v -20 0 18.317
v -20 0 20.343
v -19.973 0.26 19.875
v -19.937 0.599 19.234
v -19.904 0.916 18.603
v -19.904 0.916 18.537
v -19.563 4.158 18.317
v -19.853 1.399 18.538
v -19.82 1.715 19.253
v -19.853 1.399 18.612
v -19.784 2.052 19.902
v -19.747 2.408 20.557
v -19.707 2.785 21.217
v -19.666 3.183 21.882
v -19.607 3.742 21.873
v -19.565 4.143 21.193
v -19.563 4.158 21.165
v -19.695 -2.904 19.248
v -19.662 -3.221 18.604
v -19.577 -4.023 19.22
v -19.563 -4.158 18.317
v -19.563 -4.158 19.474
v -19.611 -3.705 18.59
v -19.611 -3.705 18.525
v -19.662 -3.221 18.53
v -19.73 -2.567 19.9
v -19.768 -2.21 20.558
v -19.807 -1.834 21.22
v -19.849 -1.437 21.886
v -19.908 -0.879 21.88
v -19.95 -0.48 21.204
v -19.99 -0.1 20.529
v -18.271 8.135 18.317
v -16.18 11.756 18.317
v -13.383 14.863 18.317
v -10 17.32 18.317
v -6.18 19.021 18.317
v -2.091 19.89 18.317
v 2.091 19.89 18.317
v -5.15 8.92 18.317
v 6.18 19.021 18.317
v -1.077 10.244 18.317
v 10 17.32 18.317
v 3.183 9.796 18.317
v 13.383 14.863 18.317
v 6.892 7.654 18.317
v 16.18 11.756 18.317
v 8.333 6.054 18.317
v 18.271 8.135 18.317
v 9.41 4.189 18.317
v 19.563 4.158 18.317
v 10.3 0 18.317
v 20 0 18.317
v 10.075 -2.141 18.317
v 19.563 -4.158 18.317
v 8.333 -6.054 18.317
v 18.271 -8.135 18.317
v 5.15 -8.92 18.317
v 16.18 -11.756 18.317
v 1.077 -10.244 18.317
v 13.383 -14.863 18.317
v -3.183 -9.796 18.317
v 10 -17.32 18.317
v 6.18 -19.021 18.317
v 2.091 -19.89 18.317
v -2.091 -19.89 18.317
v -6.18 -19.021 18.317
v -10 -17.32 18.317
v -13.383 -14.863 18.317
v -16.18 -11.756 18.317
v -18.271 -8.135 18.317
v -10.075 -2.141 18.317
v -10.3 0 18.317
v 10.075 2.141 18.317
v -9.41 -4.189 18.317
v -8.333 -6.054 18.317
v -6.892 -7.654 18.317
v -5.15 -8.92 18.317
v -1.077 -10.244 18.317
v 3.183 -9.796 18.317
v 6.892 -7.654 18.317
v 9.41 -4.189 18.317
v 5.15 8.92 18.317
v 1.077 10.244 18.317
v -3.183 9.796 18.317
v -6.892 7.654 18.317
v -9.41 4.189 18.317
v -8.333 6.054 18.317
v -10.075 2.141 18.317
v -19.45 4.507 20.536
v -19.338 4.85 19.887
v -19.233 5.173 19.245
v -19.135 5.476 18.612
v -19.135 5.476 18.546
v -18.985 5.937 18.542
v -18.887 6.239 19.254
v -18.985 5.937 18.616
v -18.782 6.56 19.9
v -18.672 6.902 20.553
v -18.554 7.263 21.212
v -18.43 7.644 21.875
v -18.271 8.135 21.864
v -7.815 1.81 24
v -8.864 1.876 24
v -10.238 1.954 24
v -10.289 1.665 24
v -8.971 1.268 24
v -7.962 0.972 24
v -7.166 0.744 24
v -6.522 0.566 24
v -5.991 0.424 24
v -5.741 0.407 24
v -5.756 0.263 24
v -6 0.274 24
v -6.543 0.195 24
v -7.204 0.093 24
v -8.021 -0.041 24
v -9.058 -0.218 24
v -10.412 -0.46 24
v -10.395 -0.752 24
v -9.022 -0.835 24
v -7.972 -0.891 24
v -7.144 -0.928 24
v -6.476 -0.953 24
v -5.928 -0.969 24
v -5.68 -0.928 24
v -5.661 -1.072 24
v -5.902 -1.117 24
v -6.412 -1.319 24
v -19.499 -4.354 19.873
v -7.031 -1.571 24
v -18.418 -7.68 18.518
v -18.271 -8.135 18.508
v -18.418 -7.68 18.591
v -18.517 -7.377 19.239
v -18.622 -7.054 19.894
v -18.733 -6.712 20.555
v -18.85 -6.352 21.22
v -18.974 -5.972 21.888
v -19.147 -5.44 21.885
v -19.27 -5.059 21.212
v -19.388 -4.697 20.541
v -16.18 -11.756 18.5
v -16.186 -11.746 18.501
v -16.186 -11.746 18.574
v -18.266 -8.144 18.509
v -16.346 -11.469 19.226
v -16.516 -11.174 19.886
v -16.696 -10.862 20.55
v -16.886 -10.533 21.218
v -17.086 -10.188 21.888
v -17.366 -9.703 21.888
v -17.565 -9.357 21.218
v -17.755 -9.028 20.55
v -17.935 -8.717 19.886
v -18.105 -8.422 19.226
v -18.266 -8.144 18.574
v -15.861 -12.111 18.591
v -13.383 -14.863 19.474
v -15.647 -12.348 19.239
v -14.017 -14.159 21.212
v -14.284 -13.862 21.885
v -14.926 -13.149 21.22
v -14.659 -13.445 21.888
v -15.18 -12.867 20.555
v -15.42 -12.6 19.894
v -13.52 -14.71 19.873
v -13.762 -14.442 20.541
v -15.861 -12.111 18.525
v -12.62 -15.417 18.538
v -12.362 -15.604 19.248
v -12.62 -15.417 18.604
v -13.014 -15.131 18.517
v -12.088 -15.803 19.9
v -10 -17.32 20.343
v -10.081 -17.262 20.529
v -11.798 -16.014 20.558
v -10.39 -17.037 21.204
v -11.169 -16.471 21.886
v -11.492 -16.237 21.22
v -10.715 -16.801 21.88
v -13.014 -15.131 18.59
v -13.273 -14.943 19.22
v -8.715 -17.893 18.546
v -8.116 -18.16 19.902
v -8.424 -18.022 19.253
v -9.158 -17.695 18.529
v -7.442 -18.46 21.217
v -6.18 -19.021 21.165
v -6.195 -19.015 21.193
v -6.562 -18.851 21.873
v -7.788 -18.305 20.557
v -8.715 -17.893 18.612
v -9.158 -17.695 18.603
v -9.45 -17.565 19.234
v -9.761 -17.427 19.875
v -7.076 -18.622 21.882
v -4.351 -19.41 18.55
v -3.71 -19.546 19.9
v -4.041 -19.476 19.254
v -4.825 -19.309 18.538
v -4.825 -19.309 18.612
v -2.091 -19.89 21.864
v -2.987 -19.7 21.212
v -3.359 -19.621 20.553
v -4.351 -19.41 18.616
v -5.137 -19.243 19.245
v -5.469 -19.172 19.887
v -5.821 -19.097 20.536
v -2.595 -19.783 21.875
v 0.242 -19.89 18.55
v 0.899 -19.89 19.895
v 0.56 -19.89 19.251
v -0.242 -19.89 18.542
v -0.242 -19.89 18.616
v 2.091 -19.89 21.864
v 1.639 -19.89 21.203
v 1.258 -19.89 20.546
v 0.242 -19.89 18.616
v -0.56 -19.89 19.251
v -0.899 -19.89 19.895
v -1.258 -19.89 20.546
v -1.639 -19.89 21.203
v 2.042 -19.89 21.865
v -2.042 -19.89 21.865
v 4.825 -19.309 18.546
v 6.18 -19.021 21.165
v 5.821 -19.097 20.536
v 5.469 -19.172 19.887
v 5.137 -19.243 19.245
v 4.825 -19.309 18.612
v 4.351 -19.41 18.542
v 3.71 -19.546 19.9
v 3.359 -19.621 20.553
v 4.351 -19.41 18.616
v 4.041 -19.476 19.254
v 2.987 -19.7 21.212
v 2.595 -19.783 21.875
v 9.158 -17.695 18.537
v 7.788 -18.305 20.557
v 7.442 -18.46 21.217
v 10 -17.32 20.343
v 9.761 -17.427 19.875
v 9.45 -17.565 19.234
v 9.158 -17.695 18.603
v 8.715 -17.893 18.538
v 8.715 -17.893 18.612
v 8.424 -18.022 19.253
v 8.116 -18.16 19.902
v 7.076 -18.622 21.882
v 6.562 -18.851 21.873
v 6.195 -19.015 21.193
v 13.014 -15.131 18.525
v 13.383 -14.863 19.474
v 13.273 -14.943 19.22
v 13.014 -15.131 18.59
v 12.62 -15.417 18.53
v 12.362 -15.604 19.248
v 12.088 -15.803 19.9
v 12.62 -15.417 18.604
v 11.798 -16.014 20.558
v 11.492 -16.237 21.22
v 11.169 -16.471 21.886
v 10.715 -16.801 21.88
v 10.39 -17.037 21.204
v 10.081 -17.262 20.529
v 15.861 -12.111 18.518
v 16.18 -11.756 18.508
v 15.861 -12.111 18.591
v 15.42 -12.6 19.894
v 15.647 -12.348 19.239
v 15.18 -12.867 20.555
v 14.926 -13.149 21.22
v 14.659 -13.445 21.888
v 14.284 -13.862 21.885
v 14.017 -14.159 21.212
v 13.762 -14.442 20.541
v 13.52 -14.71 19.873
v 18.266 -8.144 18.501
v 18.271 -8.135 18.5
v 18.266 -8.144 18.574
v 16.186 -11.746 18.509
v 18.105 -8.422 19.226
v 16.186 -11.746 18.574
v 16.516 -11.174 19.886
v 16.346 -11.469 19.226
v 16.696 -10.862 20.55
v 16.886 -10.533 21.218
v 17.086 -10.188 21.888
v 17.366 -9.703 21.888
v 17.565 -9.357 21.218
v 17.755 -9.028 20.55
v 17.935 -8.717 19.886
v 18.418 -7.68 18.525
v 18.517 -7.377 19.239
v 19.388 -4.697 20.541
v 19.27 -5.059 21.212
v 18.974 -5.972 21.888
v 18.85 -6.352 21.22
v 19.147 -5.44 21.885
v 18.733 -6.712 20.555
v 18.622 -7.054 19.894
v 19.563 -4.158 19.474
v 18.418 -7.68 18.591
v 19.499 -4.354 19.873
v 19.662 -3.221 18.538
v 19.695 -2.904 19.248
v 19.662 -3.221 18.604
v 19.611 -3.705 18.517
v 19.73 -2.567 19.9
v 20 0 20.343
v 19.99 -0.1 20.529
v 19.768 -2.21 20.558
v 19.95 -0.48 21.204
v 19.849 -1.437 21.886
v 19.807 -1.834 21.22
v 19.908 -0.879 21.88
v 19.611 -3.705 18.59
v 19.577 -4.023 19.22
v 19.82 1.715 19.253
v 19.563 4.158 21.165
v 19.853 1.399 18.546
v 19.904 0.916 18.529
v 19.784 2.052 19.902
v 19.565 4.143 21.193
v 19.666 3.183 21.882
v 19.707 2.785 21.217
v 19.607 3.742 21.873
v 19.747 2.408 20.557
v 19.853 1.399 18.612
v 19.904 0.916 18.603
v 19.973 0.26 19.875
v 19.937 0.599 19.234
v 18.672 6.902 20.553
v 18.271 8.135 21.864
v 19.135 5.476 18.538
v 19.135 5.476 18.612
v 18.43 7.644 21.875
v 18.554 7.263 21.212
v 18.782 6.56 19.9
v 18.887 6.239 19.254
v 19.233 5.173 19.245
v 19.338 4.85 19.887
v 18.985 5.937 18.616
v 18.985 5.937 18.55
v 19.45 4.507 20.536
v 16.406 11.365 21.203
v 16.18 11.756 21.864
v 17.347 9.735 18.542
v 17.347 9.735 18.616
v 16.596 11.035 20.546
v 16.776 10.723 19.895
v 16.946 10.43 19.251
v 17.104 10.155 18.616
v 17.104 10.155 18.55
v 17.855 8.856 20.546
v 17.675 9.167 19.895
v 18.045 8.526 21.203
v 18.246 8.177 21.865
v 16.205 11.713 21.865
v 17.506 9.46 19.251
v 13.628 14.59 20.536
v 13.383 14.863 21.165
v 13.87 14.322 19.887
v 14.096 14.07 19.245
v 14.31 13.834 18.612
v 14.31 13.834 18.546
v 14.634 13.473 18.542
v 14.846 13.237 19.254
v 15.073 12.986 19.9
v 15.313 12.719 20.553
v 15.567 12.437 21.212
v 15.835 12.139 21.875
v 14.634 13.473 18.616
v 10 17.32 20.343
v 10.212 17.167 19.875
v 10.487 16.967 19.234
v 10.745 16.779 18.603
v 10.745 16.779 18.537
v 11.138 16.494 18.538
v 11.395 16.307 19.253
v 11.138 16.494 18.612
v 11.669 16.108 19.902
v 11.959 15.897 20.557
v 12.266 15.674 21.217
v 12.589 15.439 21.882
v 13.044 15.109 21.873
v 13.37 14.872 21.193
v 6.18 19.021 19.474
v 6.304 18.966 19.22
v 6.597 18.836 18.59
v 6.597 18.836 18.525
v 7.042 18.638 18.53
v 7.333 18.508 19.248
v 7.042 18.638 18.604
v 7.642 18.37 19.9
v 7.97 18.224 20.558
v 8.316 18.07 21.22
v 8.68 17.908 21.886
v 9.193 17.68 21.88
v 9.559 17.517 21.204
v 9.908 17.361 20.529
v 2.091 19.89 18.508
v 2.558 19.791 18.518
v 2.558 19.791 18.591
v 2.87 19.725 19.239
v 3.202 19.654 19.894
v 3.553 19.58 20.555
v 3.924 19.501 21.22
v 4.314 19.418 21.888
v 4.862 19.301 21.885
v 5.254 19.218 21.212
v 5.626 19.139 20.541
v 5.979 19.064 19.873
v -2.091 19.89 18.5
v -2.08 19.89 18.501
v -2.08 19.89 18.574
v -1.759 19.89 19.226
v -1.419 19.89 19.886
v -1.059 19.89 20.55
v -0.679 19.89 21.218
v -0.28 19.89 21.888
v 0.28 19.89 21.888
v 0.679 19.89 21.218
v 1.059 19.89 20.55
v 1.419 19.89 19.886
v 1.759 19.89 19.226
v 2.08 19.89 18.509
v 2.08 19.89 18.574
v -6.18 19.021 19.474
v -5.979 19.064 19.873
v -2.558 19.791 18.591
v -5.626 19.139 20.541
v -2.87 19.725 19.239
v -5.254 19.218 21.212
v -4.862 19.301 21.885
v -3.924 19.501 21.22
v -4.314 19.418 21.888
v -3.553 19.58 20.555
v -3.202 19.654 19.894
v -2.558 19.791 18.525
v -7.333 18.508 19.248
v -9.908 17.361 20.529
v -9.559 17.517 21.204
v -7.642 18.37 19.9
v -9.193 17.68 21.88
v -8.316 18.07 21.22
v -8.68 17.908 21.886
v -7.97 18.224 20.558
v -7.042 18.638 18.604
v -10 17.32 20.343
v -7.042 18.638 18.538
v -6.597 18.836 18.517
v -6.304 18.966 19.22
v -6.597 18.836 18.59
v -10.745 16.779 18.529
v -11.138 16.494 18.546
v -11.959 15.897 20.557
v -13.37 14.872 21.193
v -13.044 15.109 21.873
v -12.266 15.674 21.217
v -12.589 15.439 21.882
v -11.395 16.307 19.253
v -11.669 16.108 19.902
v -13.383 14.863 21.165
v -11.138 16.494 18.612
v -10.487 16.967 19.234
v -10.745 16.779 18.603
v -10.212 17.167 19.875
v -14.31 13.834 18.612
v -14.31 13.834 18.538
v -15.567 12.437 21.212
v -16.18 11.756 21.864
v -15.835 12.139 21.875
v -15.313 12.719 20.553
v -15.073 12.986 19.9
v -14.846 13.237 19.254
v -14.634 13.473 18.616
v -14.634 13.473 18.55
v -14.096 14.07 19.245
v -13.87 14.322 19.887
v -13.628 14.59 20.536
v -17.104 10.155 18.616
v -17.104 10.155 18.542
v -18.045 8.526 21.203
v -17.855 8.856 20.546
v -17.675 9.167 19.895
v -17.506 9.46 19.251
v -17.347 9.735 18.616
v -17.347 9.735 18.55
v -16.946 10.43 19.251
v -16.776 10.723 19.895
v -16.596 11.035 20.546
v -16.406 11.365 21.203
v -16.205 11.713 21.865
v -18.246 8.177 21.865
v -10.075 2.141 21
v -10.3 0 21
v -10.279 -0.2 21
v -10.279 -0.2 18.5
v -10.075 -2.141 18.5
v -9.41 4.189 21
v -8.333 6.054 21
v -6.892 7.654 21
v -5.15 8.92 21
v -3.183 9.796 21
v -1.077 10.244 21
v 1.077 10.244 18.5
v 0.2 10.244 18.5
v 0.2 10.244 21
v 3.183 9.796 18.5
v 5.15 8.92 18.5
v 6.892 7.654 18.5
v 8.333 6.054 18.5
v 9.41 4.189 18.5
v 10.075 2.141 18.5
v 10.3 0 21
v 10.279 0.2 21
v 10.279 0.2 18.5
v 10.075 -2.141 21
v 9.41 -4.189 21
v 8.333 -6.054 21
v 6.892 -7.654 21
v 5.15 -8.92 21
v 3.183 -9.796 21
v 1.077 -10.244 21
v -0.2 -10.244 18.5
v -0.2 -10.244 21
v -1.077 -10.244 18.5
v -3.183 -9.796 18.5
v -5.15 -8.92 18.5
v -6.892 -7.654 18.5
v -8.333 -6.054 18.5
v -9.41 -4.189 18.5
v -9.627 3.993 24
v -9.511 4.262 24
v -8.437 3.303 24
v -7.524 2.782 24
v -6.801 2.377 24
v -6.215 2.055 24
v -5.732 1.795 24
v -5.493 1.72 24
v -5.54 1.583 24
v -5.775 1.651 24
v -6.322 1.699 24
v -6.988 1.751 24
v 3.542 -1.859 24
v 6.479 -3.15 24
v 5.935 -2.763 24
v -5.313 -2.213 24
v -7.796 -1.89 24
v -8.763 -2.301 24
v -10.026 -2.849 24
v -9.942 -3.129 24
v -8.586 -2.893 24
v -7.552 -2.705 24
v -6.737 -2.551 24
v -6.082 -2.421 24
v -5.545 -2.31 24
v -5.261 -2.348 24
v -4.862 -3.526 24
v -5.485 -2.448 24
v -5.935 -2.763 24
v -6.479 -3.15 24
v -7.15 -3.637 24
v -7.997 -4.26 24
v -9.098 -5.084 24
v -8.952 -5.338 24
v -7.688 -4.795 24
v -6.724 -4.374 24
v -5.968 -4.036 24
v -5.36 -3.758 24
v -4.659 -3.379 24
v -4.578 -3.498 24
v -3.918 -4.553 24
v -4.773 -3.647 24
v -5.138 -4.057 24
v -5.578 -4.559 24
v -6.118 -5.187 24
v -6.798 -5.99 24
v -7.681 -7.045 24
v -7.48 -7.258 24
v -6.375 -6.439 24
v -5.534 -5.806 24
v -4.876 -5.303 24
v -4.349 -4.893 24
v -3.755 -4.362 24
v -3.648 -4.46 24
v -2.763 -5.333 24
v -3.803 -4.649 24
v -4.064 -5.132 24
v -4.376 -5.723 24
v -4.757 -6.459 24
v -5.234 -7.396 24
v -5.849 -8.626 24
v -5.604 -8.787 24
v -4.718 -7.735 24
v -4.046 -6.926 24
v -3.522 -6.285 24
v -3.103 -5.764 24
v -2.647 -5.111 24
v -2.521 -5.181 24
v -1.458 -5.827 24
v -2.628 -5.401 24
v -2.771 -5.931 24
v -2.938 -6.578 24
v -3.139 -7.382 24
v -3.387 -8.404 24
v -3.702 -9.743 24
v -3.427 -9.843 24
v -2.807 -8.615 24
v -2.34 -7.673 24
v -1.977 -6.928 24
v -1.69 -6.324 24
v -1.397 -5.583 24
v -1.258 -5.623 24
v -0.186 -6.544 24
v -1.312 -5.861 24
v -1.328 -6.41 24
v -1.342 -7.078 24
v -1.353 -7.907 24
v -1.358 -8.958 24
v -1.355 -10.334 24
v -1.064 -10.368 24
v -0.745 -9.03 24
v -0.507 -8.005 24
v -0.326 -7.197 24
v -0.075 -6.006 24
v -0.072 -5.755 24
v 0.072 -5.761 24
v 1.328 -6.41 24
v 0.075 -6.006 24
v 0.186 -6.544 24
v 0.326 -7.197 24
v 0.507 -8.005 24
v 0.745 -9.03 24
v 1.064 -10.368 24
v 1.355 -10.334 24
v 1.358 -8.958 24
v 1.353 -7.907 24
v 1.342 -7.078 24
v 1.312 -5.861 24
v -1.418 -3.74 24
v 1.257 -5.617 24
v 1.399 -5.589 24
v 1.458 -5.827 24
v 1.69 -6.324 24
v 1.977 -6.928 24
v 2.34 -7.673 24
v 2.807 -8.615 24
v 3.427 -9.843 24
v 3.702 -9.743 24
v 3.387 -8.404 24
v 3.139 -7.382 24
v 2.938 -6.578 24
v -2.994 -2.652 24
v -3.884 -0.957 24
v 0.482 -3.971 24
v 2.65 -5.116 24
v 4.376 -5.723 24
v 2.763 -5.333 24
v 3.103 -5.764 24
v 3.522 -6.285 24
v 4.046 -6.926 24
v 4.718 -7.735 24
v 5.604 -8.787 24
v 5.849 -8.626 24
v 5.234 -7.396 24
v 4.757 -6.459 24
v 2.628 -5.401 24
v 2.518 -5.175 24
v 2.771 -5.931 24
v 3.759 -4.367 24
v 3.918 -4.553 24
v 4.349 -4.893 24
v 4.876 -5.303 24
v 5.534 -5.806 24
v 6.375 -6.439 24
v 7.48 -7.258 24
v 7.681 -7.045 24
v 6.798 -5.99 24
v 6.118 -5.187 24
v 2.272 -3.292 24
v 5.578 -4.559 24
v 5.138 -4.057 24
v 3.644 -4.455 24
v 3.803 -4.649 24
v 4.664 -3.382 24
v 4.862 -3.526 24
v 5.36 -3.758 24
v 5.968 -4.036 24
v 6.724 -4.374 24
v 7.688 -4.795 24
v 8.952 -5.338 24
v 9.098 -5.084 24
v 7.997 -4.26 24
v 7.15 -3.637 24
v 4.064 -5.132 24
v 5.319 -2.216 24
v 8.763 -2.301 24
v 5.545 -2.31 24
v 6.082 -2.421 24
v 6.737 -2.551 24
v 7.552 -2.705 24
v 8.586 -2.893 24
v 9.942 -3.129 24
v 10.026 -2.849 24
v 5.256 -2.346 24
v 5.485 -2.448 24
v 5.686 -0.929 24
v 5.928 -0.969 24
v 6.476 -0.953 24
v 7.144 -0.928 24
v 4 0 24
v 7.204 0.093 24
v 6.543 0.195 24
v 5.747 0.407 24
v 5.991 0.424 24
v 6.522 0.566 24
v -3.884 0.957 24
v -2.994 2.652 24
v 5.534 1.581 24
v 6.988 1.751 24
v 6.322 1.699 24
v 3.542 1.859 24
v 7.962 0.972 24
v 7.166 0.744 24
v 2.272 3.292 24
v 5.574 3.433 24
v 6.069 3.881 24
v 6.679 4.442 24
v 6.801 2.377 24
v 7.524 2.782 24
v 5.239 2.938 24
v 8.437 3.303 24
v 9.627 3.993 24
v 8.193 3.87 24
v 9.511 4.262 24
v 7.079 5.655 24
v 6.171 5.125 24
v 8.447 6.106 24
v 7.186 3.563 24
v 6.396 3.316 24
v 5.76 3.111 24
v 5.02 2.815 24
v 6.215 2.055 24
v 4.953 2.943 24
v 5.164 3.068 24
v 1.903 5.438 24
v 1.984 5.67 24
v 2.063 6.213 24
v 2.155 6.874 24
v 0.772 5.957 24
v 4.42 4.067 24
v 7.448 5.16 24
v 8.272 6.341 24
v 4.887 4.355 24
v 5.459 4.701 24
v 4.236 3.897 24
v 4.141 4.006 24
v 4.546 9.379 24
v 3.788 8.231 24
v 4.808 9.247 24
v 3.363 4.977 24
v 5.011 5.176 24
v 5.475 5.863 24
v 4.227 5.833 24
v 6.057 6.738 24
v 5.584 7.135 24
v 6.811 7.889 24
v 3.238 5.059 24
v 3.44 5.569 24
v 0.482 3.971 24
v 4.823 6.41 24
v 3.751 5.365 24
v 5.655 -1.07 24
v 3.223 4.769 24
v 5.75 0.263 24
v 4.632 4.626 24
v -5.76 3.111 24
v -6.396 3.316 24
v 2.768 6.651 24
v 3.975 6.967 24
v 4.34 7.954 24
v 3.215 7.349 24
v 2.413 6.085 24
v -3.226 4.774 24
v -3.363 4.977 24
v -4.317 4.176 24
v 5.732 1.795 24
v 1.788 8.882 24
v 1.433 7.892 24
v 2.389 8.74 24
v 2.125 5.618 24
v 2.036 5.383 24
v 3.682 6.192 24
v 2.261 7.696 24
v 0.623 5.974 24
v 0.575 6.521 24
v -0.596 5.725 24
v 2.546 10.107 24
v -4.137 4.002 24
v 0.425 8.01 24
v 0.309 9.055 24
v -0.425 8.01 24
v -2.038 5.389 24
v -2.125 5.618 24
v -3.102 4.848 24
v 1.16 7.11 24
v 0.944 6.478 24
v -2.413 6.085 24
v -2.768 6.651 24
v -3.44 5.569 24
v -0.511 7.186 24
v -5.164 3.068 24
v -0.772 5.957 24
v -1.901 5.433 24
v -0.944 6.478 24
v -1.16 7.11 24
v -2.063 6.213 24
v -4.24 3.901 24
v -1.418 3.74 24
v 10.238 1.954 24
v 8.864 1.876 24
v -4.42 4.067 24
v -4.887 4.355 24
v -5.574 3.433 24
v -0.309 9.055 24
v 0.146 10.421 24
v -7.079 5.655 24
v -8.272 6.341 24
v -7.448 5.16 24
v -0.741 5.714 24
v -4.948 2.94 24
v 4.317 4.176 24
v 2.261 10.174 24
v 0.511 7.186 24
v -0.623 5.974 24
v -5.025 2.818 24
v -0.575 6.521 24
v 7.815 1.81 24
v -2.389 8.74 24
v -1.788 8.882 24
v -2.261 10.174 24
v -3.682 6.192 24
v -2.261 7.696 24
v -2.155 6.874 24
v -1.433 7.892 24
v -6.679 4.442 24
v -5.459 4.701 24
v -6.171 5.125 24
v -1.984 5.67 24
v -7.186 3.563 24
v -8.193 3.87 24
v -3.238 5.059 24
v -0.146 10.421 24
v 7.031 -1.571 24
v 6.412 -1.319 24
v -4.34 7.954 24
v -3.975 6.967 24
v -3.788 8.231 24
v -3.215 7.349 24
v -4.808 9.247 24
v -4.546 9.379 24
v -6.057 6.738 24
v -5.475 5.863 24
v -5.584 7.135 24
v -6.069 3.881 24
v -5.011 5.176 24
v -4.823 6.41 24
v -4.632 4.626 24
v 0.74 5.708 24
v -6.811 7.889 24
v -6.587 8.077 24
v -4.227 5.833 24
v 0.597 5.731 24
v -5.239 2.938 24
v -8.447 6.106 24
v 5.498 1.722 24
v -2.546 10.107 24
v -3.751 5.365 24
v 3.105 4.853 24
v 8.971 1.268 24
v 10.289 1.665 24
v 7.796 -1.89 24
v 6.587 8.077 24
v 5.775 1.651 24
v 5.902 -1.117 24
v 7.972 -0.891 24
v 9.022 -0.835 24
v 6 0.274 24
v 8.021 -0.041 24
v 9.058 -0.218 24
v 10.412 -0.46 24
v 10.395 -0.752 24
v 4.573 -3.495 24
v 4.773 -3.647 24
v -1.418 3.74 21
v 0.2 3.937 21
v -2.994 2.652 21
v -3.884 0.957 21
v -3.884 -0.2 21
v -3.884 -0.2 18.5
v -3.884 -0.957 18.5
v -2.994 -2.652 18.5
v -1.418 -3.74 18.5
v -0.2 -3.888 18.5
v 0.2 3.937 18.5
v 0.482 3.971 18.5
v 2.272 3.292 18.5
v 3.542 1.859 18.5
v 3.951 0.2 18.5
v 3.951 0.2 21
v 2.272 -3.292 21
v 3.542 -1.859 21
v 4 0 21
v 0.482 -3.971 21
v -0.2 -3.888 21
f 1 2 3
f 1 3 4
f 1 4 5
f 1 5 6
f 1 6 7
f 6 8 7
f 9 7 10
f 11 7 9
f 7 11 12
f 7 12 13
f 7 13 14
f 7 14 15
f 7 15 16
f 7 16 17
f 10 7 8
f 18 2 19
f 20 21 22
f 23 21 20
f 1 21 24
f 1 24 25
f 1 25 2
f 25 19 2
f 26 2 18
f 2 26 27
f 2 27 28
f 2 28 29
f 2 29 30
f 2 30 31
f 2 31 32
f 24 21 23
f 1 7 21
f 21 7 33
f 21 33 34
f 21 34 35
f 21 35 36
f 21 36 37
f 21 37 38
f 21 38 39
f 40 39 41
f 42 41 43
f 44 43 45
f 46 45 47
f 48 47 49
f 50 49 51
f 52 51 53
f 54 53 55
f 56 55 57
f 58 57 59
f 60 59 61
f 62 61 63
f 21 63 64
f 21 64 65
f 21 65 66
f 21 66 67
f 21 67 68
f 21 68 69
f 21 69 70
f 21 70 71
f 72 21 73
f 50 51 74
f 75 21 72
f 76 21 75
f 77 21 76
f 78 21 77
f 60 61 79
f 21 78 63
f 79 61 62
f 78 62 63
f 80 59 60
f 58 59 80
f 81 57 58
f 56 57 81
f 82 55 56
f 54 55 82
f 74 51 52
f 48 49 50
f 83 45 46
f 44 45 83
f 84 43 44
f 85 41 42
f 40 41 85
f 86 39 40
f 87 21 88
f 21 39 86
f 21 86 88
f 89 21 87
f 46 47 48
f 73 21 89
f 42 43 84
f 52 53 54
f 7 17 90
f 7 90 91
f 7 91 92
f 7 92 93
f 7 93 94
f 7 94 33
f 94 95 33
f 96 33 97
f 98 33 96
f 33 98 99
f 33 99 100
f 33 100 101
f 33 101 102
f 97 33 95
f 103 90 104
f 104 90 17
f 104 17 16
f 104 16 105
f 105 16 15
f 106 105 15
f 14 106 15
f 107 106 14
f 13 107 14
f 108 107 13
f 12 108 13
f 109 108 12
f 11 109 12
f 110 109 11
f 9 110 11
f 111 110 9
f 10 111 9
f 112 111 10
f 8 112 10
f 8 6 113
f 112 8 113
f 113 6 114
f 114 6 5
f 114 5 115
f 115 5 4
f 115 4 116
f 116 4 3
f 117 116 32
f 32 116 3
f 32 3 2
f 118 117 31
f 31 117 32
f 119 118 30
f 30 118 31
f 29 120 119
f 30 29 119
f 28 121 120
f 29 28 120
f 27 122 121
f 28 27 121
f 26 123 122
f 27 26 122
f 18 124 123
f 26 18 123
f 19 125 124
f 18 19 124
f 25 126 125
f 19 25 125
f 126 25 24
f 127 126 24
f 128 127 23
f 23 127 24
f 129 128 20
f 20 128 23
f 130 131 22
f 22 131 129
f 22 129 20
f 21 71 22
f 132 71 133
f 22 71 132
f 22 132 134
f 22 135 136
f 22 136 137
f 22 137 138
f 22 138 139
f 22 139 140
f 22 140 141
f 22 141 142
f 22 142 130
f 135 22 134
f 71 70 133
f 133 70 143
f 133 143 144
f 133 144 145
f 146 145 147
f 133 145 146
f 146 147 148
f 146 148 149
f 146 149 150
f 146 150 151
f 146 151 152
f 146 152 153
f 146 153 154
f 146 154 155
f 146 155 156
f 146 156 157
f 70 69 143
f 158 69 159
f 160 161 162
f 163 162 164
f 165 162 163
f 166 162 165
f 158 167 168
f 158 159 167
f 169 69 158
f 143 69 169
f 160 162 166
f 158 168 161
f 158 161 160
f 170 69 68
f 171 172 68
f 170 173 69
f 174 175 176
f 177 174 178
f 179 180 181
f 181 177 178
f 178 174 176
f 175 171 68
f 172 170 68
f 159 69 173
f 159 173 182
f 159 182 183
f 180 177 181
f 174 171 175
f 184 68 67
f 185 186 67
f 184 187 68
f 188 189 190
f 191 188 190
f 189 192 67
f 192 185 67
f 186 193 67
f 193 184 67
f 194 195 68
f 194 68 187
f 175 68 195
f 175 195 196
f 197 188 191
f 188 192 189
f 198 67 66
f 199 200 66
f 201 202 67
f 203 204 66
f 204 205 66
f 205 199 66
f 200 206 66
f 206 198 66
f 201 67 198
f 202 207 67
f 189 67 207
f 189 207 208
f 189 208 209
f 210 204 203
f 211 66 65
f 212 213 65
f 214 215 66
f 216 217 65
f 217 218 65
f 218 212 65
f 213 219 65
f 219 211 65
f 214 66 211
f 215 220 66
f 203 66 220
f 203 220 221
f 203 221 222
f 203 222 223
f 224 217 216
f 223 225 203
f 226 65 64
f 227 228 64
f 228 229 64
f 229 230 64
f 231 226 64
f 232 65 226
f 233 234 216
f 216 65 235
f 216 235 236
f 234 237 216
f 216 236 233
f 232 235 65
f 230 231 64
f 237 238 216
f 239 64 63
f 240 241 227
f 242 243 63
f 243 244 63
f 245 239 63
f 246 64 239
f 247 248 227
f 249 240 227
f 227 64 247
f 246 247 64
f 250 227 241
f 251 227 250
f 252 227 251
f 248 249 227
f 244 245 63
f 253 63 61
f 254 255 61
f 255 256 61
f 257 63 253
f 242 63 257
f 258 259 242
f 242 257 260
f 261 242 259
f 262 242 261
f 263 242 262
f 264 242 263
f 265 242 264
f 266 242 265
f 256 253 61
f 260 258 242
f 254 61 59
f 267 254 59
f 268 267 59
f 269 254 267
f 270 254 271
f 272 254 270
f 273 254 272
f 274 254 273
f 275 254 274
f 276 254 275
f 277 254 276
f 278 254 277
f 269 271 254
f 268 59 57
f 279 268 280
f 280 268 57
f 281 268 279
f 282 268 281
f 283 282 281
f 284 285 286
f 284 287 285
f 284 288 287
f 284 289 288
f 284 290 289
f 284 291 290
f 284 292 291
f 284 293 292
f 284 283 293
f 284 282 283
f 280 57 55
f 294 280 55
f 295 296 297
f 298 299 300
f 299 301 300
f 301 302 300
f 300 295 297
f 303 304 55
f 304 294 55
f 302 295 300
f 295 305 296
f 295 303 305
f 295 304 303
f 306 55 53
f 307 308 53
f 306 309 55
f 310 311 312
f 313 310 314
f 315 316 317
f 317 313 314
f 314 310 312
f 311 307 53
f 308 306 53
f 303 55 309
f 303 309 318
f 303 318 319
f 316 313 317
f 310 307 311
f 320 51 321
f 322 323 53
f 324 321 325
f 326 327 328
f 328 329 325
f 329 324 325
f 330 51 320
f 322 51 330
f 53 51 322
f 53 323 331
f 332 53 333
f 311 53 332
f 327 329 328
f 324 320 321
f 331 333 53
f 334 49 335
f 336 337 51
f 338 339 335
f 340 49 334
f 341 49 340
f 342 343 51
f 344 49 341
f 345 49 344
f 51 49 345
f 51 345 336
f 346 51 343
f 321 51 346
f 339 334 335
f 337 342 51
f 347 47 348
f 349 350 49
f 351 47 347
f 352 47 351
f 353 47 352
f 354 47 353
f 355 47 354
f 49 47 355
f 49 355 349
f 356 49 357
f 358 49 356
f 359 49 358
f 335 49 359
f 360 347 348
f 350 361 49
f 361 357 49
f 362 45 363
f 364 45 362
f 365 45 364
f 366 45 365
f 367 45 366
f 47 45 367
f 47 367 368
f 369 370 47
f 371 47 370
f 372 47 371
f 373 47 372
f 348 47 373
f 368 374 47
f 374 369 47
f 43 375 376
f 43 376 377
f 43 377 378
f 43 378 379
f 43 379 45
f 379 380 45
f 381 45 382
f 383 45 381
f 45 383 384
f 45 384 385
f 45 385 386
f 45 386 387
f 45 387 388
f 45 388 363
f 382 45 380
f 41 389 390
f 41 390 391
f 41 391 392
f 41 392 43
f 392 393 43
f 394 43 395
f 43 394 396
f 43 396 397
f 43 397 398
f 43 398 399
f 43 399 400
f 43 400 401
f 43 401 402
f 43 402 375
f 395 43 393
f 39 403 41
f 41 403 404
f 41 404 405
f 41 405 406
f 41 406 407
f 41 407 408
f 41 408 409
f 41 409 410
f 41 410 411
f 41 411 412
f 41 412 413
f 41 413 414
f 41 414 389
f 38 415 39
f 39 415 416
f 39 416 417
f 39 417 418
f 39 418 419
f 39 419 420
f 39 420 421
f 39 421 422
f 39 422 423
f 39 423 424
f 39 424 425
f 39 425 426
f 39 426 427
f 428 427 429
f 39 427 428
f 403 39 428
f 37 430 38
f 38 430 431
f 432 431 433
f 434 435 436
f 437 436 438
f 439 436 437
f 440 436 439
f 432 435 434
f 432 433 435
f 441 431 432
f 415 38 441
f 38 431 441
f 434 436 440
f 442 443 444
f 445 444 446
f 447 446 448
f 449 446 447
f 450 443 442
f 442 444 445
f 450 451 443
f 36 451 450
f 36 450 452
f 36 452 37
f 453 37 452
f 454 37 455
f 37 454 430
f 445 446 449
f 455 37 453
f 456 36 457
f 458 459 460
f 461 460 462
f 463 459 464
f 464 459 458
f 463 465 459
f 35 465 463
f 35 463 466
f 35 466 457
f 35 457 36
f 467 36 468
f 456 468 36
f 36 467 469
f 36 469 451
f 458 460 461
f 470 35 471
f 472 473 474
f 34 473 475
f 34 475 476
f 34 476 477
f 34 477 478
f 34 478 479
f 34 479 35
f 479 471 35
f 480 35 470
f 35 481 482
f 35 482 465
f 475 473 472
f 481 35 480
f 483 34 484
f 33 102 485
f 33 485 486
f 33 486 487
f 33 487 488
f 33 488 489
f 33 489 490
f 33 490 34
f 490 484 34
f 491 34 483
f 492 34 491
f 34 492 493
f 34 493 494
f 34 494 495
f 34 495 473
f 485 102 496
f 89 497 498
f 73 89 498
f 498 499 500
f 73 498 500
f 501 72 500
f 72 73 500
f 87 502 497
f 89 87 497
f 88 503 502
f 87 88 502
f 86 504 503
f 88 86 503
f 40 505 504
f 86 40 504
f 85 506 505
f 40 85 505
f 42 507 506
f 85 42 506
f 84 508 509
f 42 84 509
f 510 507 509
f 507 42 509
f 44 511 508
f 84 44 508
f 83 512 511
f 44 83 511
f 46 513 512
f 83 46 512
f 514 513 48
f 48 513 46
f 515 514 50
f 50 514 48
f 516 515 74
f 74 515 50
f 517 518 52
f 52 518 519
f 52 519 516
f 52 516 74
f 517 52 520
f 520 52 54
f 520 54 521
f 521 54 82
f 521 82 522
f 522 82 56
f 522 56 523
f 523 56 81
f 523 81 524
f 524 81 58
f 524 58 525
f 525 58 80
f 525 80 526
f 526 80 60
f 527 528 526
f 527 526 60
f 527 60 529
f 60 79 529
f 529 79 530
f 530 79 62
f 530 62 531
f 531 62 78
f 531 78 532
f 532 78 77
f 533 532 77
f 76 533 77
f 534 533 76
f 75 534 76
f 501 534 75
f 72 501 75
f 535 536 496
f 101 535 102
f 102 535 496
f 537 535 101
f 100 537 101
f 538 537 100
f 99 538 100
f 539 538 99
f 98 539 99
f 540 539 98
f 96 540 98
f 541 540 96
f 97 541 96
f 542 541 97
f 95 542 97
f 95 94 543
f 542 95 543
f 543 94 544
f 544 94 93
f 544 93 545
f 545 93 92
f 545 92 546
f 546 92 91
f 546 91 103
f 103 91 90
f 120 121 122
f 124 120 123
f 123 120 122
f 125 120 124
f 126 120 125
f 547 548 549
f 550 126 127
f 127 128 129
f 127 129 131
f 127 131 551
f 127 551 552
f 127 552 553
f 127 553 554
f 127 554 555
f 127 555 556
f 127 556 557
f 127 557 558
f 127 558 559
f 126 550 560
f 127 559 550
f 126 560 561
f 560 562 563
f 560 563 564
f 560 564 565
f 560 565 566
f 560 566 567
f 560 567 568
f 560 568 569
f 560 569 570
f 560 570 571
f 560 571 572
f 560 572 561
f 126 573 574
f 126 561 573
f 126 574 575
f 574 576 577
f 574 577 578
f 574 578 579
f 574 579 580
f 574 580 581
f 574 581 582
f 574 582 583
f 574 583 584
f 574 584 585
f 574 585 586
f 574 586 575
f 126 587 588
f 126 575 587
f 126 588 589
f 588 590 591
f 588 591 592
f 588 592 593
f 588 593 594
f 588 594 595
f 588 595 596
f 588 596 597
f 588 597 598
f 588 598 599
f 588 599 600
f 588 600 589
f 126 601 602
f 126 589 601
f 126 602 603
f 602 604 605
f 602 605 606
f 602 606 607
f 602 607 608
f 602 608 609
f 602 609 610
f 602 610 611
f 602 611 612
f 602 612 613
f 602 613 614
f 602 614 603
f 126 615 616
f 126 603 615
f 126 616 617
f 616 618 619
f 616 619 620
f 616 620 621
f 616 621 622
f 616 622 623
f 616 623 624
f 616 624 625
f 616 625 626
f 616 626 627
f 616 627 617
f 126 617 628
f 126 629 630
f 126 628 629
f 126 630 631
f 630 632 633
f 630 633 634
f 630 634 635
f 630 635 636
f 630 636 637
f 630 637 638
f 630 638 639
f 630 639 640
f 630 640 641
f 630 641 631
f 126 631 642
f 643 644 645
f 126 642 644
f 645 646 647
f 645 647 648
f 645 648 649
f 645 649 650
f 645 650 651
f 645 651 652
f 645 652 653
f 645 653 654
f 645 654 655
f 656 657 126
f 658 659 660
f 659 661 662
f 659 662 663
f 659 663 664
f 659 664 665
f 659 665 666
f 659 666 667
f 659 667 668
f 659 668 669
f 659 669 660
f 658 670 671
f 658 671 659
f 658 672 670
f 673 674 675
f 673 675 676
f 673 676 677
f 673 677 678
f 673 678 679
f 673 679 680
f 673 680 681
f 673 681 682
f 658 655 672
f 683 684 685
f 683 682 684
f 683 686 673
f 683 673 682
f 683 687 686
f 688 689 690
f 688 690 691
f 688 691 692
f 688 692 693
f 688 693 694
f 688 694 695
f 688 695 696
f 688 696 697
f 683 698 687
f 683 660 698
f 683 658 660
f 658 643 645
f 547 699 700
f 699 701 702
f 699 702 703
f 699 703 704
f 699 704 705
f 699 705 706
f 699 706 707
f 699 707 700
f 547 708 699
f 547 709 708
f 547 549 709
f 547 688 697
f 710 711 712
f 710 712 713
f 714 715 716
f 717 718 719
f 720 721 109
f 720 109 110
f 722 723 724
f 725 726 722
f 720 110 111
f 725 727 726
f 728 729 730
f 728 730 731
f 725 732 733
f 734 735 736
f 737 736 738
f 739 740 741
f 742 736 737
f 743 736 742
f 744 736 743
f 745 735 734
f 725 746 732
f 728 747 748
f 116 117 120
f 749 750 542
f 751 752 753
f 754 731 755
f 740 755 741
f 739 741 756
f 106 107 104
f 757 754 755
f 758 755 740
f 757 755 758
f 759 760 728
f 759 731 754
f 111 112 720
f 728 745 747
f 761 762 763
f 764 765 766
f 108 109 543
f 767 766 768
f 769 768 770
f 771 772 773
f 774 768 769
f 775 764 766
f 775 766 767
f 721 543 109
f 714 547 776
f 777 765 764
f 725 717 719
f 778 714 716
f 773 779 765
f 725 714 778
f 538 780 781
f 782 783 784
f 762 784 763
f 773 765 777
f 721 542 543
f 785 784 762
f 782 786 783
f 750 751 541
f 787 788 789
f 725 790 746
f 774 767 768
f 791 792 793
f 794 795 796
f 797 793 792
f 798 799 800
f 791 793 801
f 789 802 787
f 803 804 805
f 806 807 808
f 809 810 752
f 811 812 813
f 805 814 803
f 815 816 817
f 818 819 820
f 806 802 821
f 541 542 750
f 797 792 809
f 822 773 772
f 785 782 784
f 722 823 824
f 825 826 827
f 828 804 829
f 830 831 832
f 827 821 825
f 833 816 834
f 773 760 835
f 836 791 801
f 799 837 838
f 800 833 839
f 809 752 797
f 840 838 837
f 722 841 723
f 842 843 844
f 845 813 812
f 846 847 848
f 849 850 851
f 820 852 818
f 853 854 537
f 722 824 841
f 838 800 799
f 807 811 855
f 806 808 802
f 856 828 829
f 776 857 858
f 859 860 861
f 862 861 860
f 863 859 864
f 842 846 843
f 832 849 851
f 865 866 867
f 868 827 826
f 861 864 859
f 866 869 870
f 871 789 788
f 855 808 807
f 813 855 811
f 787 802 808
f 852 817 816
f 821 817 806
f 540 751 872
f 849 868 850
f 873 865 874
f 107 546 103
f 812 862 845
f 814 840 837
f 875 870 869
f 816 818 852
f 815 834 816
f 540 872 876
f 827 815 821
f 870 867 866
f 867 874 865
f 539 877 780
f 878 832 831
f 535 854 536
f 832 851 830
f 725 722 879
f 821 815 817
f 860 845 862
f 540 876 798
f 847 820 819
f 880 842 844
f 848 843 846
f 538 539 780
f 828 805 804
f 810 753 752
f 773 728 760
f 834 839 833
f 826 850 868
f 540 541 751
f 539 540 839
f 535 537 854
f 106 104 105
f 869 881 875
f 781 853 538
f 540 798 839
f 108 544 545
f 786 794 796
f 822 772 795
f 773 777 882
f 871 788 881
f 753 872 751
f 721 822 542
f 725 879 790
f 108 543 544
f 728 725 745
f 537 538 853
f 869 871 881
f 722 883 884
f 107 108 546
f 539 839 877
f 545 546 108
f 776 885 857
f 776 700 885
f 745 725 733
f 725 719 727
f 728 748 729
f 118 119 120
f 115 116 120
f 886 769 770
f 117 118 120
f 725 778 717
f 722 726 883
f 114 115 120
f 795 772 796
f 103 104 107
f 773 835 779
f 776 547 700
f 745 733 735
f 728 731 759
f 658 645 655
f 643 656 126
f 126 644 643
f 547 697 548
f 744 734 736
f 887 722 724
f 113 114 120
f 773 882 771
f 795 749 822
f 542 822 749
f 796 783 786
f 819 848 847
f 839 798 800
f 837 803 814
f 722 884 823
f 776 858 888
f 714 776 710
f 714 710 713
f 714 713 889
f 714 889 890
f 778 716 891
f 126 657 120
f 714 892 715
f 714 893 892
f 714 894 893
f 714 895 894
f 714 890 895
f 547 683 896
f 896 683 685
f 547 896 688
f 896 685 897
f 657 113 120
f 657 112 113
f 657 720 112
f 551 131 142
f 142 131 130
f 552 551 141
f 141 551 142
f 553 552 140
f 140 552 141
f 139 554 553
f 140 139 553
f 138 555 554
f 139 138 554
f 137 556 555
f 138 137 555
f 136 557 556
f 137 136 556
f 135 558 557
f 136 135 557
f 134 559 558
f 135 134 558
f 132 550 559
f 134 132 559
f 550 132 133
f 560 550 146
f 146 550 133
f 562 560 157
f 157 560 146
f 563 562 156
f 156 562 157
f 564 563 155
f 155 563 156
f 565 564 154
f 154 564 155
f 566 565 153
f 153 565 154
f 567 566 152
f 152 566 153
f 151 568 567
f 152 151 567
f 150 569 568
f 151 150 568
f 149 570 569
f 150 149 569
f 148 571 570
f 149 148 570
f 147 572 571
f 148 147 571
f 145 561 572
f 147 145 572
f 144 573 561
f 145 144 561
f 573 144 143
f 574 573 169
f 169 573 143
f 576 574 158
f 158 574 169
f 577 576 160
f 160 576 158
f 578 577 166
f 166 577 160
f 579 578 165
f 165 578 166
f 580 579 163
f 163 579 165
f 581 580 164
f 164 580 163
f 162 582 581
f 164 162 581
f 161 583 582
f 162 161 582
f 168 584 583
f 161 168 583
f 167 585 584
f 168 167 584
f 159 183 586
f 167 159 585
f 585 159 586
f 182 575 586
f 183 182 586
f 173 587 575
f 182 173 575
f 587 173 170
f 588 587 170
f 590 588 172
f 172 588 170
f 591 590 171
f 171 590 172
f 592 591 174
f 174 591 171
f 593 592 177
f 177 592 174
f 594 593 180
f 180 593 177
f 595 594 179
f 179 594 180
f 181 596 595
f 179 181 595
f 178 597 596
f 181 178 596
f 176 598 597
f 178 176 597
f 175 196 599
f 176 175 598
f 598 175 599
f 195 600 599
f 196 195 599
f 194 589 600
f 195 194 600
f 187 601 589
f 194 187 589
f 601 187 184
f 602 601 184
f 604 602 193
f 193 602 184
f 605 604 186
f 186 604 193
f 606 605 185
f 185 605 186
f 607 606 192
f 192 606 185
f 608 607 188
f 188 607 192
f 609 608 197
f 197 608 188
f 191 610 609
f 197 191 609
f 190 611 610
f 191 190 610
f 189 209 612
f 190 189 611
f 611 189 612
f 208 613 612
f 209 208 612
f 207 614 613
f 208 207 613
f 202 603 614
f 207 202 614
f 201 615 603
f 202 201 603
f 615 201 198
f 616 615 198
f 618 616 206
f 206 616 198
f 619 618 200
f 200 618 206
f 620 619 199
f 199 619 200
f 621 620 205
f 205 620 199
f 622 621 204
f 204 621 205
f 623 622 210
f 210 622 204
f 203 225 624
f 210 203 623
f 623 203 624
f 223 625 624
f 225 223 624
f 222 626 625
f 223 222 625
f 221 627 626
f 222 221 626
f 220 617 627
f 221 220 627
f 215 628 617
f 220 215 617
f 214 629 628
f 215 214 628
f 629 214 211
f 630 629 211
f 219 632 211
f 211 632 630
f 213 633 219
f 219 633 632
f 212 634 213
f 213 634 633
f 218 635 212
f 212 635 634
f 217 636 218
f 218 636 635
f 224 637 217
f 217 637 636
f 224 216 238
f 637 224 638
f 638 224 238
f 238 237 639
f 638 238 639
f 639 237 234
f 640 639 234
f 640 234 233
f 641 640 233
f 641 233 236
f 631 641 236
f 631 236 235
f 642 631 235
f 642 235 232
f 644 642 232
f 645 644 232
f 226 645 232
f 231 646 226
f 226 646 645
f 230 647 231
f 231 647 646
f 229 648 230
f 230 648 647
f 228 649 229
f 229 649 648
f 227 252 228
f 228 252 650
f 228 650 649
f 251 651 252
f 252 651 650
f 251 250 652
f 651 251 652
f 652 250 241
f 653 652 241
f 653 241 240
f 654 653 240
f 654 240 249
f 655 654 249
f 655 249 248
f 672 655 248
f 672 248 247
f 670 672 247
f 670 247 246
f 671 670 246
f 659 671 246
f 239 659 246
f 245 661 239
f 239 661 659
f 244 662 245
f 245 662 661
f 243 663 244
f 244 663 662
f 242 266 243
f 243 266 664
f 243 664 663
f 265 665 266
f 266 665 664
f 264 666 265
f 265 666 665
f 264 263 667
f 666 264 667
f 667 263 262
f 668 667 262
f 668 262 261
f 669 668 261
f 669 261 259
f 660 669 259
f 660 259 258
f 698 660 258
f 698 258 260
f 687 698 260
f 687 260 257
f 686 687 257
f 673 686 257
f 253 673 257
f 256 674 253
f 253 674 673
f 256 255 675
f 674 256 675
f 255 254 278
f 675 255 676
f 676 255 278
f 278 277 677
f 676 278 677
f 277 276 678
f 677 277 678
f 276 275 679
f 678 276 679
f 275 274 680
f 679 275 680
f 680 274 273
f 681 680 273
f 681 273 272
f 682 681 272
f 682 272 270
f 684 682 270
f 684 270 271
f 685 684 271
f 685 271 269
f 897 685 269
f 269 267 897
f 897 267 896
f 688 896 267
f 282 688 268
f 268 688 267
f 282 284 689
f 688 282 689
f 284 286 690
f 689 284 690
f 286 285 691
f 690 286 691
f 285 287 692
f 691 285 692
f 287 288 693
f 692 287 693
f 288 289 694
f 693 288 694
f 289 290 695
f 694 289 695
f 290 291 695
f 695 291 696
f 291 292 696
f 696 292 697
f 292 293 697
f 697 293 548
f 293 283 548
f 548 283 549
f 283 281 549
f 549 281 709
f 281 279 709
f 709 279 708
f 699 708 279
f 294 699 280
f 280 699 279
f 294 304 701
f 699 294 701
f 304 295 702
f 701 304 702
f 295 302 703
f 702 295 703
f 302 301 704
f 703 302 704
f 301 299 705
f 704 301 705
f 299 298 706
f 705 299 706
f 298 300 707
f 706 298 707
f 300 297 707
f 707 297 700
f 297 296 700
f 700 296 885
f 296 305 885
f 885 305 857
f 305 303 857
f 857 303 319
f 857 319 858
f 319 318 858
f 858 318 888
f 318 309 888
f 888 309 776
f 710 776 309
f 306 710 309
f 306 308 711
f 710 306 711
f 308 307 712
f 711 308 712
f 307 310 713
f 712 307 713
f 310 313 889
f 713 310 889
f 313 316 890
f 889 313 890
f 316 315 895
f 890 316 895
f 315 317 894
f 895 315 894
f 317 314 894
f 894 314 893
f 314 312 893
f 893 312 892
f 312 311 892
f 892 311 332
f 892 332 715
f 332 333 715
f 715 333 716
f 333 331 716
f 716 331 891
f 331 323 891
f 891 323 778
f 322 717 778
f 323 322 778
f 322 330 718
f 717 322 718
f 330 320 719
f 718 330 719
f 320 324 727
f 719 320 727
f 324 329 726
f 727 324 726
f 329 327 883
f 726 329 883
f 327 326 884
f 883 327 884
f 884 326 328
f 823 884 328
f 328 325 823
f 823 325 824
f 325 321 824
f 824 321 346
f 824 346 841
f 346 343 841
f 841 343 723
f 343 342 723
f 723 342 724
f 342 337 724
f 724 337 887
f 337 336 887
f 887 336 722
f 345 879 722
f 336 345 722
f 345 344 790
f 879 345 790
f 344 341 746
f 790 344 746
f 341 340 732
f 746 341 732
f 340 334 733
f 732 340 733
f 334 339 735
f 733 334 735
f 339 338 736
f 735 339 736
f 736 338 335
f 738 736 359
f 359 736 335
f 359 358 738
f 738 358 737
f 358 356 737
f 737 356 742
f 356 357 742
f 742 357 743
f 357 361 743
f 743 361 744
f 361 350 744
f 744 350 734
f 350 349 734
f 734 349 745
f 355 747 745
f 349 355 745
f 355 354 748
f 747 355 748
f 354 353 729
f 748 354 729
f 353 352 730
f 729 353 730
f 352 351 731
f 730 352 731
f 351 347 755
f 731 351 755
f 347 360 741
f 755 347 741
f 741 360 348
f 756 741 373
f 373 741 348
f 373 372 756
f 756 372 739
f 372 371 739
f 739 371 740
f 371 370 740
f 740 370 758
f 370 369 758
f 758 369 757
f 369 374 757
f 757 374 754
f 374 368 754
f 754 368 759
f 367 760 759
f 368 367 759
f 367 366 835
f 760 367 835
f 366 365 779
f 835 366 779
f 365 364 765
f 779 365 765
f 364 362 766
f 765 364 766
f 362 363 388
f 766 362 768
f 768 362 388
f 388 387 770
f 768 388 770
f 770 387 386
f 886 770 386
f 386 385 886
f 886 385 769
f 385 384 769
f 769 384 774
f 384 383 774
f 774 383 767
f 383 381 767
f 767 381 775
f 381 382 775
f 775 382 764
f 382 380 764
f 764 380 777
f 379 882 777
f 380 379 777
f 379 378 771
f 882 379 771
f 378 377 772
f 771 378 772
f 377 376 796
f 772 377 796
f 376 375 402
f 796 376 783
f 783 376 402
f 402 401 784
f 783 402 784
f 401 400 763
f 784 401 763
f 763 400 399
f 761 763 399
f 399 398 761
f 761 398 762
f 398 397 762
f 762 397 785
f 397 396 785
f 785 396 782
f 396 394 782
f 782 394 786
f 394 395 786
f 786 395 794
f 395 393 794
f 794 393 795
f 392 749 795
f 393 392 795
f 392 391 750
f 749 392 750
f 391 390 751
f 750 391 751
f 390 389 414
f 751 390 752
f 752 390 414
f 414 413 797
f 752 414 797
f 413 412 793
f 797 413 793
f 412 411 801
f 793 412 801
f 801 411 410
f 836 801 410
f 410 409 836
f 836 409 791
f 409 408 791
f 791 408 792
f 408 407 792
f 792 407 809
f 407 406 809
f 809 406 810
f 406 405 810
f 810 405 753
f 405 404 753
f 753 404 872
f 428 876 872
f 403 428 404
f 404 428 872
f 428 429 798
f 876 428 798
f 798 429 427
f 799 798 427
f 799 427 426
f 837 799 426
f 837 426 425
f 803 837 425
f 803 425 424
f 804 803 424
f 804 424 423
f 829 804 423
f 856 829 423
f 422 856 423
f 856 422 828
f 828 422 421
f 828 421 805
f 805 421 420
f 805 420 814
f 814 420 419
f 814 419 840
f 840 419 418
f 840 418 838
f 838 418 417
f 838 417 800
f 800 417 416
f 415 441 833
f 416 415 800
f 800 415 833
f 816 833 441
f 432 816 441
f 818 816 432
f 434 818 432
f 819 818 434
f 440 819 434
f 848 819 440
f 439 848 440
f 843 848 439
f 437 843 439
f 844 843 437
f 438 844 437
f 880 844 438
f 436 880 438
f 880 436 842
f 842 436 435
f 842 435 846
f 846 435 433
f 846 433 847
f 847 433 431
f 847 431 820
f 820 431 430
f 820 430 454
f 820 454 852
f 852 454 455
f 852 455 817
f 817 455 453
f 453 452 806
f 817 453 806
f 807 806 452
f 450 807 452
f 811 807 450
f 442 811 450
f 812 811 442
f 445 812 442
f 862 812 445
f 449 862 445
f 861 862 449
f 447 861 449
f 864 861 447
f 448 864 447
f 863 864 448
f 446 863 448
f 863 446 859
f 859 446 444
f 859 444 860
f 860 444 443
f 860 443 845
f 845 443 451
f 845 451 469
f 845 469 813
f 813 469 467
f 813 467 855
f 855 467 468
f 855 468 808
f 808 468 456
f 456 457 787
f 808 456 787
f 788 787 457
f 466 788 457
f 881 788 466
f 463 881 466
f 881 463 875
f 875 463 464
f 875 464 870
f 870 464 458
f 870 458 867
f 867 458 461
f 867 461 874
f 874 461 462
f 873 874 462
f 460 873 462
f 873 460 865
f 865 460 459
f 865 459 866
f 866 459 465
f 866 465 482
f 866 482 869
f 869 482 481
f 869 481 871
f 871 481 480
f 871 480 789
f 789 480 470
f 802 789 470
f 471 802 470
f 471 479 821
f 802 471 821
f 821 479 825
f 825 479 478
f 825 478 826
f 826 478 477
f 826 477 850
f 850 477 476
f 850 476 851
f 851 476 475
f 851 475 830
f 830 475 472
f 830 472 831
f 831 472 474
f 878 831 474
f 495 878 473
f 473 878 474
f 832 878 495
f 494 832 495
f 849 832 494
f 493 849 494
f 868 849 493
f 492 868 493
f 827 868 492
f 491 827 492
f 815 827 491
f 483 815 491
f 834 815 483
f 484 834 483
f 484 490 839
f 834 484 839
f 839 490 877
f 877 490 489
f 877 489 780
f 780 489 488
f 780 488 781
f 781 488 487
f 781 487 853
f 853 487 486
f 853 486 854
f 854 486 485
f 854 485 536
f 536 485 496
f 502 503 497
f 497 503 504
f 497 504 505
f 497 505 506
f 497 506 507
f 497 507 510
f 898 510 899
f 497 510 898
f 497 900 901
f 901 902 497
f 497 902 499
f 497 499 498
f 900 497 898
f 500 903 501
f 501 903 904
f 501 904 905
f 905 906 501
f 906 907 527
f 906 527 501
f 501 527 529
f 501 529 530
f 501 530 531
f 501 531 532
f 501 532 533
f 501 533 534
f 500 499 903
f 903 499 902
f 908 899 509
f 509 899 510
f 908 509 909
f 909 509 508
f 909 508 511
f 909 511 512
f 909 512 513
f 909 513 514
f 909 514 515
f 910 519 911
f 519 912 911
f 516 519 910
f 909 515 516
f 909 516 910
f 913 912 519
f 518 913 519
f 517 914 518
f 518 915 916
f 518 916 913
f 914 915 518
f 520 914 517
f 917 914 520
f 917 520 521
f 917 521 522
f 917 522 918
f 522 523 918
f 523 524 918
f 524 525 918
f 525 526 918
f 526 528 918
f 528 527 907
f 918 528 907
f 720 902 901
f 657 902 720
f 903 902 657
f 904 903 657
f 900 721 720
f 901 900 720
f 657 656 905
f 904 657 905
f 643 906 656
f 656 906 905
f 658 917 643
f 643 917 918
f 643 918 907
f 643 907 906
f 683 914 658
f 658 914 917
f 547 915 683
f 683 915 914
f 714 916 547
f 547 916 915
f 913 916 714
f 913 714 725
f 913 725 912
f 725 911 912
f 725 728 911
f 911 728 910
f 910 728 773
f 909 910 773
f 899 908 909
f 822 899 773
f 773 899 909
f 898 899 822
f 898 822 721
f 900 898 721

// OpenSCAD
use<MCAD/involute_gears.scad>;


	gear1_teeth = 27;
	gear2_teeth = 8;
	axis_angle = 90;
	outside_circular_pitch=280;

	outside_pitch_radius1 = gear1_teeth * outside_circular_pitch / 360;
	outside_pitch_radius2 = gear2_teeth * outside_circular_pitch / 360;
	pitch_apex1=outside_pitch_radius2 * sin (axis_angle) +
		(outside_pitch_radius2 * cos (axis_angle) + outside_pitch_radius1) / tan (axis_angle);
	cone_distance = sqrt (pow (pitch_apex1, 2) + pow (outside_pitch_radius1, 2));
	pitch_apex2 = sqrt (pow (cone_distance, 2) - pow (outside_pitch_radius2, 2));
	echo ("cone_distance", cone_distance);
	pitch_angle1 = asin (outside_pitch_radius1 / cone_distance);
	pitch_angle2 = asin (outside_pitch_radius2 / cone_distance);
	echo ("pitch_angle1, pitch_angle2", pitch_angle1, pitch_angle2);
	echo ("pitch_angle1 + pitch_angle2", pitch_angle1 + pitch_angle2);

//trim a bit off the edge for smoothness and fit.
intersection(){

//gear

difference(){

	rotate([0,0,90])
	translate ([0,0,pitch_apex1+20])
	{
		translate([0,0,-pitch_apex1])
		bevel_gear (
			number_of_teeth=gear1_teeth,
			cone_distance=cone_distance,
			pressure_angle=30,
			outside_circular_pitch=outside_circular_pitch,
			face_width=18.5,
			gear_thickness=0,
			bore_diameter=0
			);
	}
//axel

difference(){
	union(){
	translate([0,0,-60])cylinder(	h=80, r=3.8);
	difference(){
		translate([0,0,16])cylinder(h=5, r=10.3);
		translate([25.2,25.2,21])cube([50,50,5], center=true);
		translate([-25.2,-25.2,21])cube([50,50,5], center=true);
	}}
translate([0,0,-60])cylinder(h=90, r=2.2);

}
cylinder(h=50, r=4);
translate([0,0,39])cube([100,100,30], center=true);
}

cylinder(h=80, r=20);
}
